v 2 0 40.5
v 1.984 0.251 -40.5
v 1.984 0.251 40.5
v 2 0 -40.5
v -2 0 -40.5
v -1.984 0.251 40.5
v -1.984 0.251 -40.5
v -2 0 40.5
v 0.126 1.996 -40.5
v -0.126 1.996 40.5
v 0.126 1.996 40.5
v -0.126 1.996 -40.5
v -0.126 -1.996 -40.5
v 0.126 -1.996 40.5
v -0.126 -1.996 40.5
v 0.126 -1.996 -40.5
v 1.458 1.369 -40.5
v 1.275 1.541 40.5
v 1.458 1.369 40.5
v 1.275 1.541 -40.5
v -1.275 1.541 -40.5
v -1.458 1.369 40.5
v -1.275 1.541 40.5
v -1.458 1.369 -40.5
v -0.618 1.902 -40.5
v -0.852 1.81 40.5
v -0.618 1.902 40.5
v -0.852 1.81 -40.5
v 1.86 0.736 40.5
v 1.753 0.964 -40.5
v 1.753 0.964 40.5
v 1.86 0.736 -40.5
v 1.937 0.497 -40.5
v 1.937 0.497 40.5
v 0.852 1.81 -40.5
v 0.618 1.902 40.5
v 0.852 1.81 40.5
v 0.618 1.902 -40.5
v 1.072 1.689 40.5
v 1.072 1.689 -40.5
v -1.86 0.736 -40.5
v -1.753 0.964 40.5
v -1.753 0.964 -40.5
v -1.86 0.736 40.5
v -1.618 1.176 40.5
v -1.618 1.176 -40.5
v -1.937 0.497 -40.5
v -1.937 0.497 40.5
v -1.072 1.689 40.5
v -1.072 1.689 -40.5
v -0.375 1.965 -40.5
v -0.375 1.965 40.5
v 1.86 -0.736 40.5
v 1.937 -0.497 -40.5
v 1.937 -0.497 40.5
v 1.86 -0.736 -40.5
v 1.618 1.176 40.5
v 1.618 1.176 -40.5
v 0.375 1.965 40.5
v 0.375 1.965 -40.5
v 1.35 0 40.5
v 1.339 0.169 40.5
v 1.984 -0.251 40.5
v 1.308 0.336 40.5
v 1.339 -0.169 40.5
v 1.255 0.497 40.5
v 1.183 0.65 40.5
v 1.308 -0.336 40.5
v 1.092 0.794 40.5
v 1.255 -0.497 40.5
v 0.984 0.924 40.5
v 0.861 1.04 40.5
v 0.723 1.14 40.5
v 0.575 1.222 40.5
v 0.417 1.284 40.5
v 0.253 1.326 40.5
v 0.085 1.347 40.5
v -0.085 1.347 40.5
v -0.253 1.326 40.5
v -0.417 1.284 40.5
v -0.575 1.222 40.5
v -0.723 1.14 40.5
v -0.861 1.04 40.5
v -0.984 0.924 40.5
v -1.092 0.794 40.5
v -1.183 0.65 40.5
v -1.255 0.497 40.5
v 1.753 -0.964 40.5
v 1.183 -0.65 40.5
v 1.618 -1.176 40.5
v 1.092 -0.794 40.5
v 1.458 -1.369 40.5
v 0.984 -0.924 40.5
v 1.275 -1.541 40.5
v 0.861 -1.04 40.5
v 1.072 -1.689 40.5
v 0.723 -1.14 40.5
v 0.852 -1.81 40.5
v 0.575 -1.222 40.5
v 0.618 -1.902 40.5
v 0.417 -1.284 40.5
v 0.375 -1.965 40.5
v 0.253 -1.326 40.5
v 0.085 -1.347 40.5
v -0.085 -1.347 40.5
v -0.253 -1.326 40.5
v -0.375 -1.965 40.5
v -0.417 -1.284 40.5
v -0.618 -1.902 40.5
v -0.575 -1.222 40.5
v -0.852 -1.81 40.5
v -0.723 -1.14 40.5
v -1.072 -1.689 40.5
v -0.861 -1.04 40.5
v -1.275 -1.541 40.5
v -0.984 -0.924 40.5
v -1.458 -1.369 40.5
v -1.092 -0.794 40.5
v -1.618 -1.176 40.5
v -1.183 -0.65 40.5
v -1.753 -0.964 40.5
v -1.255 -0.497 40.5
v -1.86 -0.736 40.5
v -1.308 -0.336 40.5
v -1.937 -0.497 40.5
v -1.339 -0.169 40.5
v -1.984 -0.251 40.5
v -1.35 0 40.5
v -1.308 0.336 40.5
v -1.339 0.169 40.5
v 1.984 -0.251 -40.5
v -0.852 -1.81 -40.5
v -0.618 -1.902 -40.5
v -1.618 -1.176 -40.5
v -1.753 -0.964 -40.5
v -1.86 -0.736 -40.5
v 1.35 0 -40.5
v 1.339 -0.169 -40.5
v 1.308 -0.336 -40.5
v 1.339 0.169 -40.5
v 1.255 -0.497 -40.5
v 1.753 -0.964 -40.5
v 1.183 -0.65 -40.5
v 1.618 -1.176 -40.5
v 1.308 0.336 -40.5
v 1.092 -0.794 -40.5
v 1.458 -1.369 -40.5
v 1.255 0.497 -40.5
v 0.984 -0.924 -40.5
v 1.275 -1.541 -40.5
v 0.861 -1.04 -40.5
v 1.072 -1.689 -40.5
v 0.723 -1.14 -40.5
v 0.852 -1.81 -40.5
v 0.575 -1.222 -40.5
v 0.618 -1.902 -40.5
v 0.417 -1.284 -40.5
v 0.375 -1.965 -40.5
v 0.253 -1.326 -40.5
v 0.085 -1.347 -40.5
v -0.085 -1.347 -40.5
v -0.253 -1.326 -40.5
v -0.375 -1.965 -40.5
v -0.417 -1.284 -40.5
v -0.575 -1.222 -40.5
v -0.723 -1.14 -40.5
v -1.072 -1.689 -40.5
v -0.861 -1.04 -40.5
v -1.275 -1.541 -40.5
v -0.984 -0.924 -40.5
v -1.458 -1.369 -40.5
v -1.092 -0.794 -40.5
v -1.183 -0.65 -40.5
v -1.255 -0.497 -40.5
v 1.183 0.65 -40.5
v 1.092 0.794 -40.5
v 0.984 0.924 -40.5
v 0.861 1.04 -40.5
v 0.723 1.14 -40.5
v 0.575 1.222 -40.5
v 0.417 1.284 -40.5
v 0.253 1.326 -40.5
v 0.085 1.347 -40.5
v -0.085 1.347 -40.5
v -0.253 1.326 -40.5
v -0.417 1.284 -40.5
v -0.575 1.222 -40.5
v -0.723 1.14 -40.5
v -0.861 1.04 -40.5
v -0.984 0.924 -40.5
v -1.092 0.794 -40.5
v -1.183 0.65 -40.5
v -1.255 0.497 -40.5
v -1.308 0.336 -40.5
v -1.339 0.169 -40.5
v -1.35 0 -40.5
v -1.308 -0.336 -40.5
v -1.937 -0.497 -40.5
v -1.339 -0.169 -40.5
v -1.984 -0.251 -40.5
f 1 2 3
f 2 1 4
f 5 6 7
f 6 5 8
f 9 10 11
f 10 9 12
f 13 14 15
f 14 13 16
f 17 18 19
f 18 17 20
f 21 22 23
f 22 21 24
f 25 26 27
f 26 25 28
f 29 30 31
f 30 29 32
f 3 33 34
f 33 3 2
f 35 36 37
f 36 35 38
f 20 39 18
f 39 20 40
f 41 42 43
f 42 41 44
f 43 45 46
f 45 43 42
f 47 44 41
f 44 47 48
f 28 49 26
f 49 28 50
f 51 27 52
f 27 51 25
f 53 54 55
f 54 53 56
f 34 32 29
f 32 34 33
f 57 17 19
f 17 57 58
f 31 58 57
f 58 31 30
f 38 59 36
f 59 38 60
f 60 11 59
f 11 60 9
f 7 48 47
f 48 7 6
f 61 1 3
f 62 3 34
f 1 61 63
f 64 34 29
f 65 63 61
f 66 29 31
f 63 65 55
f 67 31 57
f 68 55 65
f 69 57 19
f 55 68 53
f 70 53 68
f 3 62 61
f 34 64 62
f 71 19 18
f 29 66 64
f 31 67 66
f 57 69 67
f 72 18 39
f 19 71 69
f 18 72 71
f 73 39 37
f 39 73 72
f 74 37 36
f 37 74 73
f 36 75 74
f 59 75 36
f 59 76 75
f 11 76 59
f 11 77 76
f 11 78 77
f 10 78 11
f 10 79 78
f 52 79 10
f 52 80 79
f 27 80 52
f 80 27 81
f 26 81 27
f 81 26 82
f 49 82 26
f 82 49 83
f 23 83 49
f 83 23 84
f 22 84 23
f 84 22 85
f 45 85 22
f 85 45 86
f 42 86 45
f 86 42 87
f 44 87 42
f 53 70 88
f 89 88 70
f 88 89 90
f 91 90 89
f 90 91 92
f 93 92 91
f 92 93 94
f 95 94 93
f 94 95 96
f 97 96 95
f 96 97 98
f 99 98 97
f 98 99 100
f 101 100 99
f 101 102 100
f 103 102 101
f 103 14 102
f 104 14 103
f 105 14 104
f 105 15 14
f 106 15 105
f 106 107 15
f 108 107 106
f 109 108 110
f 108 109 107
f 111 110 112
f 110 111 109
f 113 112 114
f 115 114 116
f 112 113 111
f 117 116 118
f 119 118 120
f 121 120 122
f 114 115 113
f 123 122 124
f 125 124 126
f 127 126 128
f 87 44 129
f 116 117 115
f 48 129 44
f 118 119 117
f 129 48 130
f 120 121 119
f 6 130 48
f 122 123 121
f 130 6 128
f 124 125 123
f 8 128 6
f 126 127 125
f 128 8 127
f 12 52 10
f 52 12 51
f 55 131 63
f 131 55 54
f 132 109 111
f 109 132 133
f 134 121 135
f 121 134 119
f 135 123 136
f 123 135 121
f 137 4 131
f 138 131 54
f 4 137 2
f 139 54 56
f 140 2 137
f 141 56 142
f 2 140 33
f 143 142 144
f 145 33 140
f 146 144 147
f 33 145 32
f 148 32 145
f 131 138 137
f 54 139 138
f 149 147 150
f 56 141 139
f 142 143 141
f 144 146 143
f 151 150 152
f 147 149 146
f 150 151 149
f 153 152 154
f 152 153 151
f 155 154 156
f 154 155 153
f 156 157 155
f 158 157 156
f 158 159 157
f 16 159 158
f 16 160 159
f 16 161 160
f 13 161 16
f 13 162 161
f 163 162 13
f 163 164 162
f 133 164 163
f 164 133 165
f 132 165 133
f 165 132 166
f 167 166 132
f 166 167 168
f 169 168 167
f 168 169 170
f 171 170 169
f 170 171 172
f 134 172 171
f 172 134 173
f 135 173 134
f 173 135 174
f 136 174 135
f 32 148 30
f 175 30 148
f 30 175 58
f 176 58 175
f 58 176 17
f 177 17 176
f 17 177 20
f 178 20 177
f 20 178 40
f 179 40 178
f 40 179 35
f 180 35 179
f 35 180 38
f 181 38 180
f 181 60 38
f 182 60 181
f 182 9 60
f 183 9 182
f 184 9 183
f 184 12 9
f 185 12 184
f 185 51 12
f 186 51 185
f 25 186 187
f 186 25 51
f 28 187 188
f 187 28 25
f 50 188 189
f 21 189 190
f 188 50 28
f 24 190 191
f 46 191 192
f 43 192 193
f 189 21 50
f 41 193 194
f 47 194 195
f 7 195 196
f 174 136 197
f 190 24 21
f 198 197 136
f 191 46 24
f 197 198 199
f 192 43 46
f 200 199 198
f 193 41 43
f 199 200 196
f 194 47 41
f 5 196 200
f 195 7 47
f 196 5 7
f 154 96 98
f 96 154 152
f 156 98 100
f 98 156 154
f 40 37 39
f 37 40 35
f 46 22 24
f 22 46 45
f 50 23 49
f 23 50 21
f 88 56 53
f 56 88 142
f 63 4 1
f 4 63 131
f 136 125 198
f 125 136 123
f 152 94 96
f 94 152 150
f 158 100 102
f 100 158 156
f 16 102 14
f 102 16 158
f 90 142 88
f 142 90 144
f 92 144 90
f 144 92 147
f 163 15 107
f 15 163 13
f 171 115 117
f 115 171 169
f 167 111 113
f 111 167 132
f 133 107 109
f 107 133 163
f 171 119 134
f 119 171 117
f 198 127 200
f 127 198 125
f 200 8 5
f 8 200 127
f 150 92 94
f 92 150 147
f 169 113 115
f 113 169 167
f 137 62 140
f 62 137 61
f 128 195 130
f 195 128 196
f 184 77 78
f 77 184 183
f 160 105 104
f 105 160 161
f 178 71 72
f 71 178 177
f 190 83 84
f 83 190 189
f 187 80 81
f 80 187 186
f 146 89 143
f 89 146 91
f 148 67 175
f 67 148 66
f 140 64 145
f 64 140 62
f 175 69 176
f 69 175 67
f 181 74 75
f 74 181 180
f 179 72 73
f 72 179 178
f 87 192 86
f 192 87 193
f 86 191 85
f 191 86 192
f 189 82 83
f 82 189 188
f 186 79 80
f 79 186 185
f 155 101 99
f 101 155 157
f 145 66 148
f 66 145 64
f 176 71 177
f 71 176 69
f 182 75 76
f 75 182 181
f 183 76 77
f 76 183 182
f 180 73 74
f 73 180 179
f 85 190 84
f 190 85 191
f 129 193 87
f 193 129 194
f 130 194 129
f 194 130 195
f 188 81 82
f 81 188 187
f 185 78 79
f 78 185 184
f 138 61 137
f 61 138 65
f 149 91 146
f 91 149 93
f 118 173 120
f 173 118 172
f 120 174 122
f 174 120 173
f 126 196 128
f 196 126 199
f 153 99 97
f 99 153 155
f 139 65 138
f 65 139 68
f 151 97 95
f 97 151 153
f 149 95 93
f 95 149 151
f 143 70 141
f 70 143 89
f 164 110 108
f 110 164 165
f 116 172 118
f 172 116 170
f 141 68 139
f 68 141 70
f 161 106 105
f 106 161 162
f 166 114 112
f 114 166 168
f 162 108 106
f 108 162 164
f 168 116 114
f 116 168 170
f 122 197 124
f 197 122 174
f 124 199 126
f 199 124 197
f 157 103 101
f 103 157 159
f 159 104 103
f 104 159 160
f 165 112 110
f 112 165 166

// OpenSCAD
$fn = 50;


difference() {
	union() {
		translate(v = [0, 0, -40.5000000000]) {
			cylinder(h = 81, r = 2.0000000000);
		}
	}
	union() {
		translate(v = [0, 0, -100.0000000000]) {
			cylinder(h = 200, r = 1.3500000000);
		}
	}
}
